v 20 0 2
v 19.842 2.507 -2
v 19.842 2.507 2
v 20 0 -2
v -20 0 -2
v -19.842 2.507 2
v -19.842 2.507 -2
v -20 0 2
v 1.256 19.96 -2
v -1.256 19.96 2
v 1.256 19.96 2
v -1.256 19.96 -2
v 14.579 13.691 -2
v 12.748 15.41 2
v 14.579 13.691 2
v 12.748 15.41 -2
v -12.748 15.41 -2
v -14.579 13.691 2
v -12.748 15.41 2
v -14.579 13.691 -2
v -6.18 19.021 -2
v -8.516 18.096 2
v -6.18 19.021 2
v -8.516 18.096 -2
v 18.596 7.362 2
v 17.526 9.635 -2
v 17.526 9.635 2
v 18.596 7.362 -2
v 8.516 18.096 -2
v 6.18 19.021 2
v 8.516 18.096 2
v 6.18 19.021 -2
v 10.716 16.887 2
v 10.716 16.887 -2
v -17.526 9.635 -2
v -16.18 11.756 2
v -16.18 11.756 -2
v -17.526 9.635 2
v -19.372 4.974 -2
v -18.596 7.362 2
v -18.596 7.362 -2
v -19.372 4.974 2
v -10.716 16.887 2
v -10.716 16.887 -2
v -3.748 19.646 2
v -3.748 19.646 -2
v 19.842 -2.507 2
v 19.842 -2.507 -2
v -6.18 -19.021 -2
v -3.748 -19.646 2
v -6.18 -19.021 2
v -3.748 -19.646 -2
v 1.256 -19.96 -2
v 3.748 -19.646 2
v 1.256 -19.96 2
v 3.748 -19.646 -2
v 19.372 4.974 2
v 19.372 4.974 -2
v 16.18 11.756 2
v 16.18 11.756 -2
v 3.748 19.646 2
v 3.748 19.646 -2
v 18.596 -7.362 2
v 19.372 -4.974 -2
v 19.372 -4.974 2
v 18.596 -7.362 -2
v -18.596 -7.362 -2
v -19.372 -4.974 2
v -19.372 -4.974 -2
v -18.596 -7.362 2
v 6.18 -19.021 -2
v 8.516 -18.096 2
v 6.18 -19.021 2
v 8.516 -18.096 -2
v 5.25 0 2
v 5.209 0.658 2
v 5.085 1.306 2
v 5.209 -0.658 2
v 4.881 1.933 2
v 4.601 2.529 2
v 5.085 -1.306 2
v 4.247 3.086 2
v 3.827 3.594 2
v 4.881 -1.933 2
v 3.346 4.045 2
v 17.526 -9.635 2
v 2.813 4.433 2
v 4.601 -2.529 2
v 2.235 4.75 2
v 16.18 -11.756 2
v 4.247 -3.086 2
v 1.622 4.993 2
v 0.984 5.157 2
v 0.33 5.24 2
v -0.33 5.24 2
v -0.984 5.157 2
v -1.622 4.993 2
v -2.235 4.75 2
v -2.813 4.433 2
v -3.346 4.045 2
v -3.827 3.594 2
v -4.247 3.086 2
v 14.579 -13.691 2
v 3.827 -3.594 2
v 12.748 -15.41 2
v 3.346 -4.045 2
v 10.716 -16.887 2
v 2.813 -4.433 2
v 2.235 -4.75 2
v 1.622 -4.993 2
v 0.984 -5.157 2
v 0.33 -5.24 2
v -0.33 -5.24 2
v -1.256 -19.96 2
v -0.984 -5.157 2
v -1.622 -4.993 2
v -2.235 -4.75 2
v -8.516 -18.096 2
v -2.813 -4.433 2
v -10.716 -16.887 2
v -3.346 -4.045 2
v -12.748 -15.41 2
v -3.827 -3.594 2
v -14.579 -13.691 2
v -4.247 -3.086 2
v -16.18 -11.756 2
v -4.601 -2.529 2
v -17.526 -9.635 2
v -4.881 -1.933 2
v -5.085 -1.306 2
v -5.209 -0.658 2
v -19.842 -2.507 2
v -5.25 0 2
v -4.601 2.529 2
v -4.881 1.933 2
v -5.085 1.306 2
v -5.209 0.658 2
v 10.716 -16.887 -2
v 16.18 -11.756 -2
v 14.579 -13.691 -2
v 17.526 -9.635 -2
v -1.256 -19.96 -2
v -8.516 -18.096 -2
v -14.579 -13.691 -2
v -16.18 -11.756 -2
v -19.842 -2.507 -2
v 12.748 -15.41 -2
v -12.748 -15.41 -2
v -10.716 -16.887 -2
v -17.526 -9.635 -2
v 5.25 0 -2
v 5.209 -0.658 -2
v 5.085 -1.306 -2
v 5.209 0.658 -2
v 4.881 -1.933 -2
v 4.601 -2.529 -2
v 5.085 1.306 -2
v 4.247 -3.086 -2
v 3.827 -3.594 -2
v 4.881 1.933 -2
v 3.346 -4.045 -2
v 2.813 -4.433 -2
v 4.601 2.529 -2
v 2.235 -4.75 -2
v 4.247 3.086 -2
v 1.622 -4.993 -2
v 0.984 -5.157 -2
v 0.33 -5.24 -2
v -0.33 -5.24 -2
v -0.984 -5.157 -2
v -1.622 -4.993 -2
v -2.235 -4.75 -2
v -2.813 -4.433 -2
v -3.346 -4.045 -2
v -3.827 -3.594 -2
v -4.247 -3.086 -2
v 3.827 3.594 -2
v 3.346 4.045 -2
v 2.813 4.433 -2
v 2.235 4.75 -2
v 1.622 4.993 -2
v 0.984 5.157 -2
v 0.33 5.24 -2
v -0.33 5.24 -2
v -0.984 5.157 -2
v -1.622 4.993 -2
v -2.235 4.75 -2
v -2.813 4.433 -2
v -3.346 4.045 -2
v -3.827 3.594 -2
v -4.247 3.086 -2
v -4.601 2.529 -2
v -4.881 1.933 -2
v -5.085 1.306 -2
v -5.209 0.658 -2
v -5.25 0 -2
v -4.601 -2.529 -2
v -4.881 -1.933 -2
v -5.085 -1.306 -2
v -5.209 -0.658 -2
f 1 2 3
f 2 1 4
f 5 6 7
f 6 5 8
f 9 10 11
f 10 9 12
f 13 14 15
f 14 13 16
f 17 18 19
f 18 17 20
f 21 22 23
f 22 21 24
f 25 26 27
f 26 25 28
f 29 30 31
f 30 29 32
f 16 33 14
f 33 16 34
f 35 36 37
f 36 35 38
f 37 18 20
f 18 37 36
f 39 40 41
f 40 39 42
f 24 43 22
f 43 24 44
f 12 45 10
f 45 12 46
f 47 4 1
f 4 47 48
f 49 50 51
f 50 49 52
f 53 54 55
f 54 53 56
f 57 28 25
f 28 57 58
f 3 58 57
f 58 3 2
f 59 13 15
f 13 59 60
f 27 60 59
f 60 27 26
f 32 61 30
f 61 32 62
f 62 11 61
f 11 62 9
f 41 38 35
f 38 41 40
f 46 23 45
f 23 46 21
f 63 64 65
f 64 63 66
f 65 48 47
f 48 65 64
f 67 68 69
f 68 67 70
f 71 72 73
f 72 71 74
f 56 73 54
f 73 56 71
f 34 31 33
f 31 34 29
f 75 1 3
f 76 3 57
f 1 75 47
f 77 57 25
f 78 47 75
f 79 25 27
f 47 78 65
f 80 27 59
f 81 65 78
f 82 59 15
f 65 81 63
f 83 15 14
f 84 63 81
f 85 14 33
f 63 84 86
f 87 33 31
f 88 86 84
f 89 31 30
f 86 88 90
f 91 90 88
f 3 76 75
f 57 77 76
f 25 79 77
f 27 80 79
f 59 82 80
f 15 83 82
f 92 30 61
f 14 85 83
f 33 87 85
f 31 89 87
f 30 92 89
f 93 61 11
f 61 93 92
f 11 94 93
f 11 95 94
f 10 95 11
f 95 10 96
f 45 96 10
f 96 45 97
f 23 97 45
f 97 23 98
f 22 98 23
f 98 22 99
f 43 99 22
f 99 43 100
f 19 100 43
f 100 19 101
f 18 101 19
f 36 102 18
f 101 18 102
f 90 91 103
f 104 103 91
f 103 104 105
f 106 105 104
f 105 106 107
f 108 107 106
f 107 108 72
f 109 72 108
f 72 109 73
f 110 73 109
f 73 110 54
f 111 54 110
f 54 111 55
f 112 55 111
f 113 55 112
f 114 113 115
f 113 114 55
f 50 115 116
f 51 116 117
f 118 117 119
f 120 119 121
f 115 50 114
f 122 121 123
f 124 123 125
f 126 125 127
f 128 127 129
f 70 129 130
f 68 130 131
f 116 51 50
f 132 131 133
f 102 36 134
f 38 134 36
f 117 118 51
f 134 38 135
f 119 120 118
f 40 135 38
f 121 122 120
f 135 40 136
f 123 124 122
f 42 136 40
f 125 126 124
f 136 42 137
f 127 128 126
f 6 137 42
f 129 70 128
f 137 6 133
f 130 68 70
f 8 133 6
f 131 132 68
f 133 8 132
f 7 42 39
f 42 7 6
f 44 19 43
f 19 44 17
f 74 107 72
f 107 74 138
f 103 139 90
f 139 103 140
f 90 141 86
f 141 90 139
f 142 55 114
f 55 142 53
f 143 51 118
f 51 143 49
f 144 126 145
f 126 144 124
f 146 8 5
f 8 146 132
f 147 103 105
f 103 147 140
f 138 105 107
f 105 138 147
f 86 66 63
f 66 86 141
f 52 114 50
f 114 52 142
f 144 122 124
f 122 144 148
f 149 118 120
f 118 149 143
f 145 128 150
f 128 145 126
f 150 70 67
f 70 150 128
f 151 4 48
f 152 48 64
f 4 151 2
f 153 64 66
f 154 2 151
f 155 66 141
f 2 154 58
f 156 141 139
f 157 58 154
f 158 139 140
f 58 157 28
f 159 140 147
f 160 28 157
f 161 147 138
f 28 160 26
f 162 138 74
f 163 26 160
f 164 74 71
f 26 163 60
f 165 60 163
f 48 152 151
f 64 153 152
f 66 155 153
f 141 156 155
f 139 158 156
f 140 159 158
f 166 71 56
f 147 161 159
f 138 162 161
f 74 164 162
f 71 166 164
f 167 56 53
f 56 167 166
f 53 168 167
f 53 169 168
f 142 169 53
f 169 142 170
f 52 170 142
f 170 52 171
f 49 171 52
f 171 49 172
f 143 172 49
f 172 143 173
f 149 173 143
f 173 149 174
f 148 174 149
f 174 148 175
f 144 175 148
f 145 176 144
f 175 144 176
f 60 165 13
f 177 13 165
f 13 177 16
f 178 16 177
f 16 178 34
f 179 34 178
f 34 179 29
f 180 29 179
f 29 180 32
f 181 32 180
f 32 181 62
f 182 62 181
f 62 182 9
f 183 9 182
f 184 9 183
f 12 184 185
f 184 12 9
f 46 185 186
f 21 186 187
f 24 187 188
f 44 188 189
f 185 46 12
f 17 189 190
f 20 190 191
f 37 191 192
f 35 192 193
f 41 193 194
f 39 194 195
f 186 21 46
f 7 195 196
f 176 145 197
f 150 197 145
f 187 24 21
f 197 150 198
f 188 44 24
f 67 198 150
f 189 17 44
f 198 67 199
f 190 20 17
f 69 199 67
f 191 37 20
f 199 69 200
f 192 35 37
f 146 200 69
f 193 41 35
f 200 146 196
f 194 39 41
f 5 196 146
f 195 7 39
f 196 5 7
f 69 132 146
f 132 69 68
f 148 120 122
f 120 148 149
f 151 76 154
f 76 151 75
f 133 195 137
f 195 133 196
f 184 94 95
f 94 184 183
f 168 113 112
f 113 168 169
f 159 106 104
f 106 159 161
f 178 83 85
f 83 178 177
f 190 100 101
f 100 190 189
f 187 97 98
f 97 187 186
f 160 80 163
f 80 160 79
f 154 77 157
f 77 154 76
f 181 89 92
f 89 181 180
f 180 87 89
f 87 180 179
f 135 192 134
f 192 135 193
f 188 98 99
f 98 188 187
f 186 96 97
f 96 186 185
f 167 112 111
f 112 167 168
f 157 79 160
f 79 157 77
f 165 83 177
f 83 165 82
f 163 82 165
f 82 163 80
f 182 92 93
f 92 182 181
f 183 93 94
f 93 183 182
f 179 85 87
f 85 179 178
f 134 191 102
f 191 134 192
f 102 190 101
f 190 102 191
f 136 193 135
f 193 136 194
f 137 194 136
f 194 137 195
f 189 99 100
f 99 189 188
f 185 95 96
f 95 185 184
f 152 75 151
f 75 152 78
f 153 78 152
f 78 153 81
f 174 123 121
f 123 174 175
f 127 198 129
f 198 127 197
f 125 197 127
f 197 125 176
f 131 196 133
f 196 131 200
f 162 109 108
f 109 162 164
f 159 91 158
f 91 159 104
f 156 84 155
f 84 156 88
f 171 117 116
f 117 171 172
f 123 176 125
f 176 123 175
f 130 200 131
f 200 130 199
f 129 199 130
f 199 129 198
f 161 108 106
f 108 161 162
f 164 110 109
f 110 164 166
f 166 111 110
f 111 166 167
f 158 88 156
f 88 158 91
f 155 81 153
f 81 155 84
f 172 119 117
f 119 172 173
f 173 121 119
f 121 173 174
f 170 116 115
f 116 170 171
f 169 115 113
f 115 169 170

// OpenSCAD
$fn = 50;


difference() {
	union() {
		translate(v = [0, 0, -2.0000000000]) {
			cylinder(h = 4, r = 20.0000000000);
		}
	}
	union() {
		translate(v = [0, 0, -100.0000000000]) {
			cylinder(h = 200, r = 5.2500000000);
		}
	}
}
